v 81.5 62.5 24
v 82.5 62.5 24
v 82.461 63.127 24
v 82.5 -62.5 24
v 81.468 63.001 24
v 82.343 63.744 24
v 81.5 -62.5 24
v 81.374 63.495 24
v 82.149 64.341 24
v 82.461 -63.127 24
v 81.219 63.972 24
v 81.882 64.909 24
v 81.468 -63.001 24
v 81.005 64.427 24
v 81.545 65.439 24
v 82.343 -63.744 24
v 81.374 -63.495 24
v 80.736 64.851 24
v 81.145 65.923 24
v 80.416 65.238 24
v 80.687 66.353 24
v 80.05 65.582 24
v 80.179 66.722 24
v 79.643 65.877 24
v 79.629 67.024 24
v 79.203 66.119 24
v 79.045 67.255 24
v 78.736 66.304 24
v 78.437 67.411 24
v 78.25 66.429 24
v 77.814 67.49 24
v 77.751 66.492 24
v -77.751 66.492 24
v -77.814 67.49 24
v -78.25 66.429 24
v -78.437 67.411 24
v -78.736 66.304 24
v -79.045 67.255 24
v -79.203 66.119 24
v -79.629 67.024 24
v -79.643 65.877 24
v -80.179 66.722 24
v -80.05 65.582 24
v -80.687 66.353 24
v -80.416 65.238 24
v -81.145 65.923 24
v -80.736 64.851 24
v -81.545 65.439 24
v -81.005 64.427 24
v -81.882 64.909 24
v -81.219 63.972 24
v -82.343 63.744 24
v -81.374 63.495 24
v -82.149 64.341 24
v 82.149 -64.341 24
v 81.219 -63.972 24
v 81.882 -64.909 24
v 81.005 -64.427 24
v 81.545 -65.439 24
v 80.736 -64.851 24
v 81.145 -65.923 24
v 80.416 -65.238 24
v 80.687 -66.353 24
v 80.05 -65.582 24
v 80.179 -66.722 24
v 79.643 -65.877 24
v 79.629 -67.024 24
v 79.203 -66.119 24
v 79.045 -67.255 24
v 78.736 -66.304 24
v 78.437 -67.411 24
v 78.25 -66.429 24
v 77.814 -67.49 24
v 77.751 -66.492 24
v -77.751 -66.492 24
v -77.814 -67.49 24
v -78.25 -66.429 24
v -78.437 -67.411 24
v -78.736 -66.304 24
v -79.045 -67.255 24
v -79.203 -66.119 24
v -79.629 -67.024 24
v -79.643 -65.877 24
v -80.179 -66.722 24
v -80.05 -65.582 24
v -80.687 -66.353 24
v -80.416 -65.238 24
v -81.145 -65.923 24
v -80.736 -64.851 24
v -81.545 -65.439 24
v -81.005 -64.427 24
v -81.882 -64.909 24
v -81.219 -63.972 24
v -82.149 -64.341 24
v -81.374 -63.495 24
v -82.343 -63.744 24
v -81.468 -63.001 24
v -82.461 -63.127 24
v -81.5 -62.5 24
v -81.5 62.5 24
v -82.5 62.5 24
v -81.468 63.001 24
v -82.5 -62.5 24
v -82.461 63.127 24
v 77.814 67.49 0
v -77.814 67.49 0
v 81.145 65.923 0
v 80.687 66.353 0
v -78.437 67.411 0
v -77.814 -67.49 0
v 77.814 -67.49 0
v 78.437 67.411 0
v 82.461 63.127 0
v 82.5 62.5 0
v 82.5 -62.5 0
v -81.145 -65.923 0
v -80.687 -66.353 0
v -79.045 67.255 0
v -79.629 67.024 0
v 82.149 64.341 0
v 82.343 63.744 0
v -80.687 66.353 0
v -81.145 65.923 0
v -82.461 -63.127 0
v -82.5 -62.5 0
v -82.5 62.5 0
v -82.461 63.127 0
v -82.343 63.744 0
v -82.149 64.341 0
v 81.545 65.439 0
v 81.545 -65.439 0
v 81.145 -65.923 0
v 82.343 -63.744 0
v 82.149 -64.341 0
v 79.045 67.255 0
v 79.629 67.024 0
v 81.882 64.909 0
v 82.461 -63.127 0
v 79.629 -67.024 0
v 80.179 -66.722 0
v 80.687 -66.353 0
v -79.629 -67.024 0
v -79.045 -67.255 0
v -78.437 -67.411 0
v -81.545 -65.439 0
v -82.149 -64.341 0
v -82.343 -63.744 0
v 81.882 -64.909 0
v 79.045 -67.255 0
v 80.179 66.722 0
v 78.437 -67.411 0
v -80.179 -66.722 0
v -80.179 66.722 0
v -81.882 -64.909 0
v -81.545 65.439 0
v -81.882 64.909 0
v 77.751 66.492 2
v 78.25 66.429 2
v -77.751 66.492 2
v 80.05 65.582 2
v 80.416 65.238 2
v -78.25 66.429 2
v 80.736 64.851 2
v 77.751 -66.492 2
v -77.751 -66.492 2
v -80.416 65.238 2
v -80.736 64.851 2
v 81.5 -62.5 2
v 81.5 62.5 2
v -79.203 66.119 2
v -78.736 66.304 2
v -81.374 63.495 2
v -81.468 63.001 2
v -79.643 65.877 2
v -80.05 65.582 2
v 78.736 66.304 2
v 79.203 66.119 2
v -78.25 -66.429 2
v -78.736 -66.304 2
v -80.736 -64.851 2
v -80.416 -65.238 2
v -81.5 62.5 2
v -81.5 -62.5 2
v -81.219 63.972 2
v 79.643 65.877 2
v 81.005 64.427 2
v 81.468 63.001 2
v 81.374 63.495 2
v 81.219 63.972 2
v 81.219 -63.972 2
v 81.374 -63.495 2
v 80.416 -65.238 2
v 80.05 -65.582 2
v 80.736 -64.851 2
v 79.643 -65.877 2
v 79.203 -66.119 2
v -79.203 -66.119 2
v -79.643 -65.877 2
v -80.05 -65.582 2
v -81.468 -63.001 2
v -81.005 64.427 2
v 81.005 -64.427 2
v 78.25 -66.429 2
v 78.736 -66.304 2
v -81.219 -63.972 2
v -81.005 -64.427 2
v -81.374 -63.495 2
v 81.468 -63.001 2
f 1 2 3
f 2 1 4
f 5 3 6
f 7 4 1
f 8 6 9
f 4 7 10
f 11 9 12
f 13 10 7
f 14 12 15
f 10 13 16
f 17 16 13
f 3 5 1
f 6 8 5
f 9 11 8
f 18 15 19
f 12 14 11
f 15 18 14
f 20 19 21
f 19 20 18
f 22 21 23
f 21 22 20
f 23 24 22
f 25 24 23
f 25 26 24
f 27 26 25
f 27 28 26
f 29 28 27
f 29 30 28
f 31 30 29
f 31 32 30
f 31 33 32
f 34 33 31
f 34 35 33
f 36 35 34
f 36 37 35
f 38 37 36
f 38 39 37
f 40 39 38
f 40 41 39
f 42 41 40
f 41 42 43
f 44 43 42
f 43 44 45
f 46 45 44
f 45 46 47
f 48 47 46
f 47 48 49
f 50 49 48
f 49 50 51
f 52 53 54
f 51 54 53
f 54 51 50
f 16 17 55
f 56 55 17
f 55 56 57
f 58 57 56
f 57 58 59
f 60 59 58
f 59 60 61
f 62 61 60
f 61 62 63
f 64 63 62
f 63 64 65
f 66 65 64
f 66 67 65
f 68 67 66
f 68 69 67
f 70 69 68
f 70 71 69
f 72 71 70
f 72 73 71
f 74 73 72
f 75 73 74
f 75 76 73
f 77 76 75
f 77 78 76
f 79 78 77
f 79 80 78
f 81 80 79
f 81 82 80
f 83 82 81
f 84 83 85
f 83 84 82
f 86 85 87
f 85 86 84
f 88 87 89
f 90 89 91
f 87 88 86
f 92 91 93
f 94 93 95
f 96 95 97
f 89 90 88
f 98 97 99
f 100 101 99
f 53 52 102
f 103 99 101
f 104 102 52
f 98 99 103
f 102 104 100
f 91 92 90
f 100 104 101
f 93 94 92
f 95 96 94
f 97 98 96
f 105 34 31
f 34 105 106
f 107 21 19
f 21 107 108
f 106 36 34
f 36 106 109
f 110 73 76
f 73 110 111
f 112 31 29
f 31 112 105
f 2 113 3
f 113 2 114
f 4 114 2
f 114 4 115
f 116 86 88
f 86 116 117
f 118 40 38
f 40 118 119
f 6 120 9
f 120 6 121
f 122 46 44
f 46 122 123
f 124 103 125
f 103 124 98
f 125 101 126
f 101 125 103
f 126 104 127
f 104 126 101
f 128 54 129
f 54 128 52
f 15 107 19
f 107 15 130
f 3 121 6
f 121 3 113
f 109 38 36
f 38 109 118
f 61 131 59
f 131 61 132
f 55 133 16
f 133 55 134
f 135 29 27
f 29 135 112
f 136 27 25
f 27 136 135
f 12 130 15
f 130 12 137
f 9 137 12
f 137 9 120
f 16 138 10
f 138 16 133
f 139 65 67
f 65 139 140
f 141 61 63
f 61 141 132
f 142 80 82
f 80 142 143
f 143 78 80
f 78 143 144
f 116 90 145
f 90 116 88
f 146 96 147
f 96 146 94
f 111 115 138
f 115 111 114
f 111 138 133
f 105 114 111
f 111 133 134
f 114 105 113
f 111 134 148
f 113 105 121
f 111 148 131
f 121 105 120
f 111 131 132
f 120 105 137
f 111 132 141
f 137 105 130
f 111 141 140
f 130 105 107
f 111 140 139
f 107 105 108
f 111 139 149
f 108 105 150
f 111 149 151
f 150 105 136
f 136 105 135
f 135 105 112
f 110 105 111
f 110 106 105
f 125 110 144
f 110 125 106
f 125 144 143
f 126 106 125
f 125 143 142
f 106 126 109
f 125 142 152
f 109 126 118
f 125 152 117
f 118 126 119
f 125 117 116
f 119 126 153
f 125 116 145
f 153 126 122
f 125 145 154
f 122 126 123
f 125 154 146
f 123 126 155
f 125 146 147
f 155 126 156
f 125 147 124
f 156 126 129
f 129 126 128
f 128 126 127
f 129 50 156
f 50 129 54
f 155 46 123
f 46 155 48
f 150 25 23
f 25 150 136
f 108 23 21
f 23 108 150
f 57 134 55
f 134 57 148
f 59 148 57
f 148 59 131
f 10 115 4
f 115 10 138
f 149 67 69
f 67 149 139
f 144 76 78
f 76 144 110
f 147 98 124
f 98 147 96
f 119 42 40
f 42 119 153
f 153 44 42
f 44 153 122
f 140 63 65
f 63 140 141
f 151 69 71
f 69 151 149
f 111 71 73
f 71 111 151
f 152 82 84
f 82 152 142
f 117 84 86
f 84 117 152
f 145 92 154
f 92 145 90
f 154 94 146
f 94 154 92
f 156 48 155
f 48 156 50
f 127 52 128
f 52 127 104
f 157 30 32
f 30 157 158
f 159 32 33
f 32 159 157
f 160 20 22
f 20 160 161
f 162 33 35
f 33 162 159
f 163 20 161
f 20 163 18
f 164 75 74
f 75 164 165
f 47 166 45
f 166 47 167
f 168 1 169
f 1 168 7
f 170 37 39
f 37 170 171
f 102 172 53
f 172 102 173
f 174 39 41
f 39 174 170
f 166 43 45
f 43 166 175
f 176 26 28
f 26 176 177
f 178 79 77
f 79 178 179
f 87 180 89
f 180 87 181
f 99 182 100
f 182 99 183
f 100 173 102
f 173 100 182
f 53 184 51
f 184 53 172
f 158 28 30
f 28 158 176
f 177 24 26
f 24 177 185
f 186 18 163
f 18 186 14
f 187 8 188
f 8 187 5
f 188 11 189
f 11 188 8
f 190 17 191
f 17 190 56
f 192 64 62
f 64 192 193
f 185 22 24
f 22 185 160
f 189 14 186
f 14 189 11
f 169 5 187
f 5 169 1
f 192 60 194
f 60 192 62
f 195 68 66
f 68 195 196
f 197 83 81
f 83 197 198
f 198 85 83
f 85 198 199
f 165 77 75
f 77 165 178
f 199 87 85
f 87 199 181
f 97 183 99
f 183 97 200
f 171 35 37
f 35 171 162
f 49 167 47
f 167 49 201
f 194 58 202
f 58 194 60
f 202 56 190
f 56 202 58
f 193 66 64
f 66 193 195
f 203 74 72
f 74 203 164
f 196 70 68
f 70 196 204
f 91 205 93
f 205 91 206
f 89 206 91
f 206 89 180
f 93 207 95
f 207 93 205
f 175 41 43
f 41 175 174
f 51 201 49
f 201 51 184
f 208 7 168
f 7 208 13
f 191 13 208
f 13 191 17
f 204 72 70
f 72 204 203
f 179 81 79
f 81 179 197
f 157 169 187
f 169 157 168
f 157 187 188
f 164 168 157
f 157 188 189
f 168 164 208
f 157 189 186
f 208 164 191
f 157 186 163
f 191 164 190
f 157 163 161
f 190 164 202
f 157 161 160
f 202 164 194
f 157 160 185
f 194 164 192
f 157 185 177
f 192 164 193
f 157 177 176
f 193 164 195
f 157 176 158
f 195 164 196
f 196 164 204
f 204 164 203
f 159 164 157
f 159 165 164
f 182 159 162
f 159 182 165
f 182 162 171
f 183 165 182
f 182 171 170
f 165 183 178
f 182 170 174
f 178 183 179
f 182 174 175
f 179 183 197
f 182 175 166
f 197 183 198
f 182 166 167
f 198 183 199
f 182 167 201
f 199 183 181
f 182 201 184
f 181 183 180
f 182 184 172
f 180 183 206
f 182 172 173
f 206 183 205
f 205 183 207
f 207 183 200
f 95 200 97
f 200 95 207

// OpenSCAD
$fn = 50;


difference() {
	union() {
		hull() {
			translate(v = [-77.5000000000, 62.5000000000, 0]) {
				cylinder(h = 24, r = 5);
			}
			translate(v = [77.5000000000, 62.5000000000, 0]) {
				cylinder(h = 24, r = 5);
			}
			translate(v = [-77.5000000000, -62.5000000000, 0]) {
				cylinder(h = 24, r = 5);
			}
			translate(v = [77.5000000000, -62.5000000000, 0]) {
				cylinder(h = 24, r = 5);
			}
		}
	}
	union() {
		translate(v = [0, 0, 2]) {
			hull() {
				translate(v = [-77.5000000000, 62.5000000000, 0]) {
					cylinder(h = 22, r = 4);
				}
				translate(v = [77.5000000000, 62.5000000000, 0]) {
					cylinder(h = 22, r = 4);
				}
				translate(v = [-77.5000000000, -62.5000000000, 0]) {
					cylinder(h = 22, r = 4);
				}
				translate(v = [77.5000000000, -62.5000000000, 0]) {
					cylinder(h = 22, r = 4);
				}
			}
		}
	}
}
